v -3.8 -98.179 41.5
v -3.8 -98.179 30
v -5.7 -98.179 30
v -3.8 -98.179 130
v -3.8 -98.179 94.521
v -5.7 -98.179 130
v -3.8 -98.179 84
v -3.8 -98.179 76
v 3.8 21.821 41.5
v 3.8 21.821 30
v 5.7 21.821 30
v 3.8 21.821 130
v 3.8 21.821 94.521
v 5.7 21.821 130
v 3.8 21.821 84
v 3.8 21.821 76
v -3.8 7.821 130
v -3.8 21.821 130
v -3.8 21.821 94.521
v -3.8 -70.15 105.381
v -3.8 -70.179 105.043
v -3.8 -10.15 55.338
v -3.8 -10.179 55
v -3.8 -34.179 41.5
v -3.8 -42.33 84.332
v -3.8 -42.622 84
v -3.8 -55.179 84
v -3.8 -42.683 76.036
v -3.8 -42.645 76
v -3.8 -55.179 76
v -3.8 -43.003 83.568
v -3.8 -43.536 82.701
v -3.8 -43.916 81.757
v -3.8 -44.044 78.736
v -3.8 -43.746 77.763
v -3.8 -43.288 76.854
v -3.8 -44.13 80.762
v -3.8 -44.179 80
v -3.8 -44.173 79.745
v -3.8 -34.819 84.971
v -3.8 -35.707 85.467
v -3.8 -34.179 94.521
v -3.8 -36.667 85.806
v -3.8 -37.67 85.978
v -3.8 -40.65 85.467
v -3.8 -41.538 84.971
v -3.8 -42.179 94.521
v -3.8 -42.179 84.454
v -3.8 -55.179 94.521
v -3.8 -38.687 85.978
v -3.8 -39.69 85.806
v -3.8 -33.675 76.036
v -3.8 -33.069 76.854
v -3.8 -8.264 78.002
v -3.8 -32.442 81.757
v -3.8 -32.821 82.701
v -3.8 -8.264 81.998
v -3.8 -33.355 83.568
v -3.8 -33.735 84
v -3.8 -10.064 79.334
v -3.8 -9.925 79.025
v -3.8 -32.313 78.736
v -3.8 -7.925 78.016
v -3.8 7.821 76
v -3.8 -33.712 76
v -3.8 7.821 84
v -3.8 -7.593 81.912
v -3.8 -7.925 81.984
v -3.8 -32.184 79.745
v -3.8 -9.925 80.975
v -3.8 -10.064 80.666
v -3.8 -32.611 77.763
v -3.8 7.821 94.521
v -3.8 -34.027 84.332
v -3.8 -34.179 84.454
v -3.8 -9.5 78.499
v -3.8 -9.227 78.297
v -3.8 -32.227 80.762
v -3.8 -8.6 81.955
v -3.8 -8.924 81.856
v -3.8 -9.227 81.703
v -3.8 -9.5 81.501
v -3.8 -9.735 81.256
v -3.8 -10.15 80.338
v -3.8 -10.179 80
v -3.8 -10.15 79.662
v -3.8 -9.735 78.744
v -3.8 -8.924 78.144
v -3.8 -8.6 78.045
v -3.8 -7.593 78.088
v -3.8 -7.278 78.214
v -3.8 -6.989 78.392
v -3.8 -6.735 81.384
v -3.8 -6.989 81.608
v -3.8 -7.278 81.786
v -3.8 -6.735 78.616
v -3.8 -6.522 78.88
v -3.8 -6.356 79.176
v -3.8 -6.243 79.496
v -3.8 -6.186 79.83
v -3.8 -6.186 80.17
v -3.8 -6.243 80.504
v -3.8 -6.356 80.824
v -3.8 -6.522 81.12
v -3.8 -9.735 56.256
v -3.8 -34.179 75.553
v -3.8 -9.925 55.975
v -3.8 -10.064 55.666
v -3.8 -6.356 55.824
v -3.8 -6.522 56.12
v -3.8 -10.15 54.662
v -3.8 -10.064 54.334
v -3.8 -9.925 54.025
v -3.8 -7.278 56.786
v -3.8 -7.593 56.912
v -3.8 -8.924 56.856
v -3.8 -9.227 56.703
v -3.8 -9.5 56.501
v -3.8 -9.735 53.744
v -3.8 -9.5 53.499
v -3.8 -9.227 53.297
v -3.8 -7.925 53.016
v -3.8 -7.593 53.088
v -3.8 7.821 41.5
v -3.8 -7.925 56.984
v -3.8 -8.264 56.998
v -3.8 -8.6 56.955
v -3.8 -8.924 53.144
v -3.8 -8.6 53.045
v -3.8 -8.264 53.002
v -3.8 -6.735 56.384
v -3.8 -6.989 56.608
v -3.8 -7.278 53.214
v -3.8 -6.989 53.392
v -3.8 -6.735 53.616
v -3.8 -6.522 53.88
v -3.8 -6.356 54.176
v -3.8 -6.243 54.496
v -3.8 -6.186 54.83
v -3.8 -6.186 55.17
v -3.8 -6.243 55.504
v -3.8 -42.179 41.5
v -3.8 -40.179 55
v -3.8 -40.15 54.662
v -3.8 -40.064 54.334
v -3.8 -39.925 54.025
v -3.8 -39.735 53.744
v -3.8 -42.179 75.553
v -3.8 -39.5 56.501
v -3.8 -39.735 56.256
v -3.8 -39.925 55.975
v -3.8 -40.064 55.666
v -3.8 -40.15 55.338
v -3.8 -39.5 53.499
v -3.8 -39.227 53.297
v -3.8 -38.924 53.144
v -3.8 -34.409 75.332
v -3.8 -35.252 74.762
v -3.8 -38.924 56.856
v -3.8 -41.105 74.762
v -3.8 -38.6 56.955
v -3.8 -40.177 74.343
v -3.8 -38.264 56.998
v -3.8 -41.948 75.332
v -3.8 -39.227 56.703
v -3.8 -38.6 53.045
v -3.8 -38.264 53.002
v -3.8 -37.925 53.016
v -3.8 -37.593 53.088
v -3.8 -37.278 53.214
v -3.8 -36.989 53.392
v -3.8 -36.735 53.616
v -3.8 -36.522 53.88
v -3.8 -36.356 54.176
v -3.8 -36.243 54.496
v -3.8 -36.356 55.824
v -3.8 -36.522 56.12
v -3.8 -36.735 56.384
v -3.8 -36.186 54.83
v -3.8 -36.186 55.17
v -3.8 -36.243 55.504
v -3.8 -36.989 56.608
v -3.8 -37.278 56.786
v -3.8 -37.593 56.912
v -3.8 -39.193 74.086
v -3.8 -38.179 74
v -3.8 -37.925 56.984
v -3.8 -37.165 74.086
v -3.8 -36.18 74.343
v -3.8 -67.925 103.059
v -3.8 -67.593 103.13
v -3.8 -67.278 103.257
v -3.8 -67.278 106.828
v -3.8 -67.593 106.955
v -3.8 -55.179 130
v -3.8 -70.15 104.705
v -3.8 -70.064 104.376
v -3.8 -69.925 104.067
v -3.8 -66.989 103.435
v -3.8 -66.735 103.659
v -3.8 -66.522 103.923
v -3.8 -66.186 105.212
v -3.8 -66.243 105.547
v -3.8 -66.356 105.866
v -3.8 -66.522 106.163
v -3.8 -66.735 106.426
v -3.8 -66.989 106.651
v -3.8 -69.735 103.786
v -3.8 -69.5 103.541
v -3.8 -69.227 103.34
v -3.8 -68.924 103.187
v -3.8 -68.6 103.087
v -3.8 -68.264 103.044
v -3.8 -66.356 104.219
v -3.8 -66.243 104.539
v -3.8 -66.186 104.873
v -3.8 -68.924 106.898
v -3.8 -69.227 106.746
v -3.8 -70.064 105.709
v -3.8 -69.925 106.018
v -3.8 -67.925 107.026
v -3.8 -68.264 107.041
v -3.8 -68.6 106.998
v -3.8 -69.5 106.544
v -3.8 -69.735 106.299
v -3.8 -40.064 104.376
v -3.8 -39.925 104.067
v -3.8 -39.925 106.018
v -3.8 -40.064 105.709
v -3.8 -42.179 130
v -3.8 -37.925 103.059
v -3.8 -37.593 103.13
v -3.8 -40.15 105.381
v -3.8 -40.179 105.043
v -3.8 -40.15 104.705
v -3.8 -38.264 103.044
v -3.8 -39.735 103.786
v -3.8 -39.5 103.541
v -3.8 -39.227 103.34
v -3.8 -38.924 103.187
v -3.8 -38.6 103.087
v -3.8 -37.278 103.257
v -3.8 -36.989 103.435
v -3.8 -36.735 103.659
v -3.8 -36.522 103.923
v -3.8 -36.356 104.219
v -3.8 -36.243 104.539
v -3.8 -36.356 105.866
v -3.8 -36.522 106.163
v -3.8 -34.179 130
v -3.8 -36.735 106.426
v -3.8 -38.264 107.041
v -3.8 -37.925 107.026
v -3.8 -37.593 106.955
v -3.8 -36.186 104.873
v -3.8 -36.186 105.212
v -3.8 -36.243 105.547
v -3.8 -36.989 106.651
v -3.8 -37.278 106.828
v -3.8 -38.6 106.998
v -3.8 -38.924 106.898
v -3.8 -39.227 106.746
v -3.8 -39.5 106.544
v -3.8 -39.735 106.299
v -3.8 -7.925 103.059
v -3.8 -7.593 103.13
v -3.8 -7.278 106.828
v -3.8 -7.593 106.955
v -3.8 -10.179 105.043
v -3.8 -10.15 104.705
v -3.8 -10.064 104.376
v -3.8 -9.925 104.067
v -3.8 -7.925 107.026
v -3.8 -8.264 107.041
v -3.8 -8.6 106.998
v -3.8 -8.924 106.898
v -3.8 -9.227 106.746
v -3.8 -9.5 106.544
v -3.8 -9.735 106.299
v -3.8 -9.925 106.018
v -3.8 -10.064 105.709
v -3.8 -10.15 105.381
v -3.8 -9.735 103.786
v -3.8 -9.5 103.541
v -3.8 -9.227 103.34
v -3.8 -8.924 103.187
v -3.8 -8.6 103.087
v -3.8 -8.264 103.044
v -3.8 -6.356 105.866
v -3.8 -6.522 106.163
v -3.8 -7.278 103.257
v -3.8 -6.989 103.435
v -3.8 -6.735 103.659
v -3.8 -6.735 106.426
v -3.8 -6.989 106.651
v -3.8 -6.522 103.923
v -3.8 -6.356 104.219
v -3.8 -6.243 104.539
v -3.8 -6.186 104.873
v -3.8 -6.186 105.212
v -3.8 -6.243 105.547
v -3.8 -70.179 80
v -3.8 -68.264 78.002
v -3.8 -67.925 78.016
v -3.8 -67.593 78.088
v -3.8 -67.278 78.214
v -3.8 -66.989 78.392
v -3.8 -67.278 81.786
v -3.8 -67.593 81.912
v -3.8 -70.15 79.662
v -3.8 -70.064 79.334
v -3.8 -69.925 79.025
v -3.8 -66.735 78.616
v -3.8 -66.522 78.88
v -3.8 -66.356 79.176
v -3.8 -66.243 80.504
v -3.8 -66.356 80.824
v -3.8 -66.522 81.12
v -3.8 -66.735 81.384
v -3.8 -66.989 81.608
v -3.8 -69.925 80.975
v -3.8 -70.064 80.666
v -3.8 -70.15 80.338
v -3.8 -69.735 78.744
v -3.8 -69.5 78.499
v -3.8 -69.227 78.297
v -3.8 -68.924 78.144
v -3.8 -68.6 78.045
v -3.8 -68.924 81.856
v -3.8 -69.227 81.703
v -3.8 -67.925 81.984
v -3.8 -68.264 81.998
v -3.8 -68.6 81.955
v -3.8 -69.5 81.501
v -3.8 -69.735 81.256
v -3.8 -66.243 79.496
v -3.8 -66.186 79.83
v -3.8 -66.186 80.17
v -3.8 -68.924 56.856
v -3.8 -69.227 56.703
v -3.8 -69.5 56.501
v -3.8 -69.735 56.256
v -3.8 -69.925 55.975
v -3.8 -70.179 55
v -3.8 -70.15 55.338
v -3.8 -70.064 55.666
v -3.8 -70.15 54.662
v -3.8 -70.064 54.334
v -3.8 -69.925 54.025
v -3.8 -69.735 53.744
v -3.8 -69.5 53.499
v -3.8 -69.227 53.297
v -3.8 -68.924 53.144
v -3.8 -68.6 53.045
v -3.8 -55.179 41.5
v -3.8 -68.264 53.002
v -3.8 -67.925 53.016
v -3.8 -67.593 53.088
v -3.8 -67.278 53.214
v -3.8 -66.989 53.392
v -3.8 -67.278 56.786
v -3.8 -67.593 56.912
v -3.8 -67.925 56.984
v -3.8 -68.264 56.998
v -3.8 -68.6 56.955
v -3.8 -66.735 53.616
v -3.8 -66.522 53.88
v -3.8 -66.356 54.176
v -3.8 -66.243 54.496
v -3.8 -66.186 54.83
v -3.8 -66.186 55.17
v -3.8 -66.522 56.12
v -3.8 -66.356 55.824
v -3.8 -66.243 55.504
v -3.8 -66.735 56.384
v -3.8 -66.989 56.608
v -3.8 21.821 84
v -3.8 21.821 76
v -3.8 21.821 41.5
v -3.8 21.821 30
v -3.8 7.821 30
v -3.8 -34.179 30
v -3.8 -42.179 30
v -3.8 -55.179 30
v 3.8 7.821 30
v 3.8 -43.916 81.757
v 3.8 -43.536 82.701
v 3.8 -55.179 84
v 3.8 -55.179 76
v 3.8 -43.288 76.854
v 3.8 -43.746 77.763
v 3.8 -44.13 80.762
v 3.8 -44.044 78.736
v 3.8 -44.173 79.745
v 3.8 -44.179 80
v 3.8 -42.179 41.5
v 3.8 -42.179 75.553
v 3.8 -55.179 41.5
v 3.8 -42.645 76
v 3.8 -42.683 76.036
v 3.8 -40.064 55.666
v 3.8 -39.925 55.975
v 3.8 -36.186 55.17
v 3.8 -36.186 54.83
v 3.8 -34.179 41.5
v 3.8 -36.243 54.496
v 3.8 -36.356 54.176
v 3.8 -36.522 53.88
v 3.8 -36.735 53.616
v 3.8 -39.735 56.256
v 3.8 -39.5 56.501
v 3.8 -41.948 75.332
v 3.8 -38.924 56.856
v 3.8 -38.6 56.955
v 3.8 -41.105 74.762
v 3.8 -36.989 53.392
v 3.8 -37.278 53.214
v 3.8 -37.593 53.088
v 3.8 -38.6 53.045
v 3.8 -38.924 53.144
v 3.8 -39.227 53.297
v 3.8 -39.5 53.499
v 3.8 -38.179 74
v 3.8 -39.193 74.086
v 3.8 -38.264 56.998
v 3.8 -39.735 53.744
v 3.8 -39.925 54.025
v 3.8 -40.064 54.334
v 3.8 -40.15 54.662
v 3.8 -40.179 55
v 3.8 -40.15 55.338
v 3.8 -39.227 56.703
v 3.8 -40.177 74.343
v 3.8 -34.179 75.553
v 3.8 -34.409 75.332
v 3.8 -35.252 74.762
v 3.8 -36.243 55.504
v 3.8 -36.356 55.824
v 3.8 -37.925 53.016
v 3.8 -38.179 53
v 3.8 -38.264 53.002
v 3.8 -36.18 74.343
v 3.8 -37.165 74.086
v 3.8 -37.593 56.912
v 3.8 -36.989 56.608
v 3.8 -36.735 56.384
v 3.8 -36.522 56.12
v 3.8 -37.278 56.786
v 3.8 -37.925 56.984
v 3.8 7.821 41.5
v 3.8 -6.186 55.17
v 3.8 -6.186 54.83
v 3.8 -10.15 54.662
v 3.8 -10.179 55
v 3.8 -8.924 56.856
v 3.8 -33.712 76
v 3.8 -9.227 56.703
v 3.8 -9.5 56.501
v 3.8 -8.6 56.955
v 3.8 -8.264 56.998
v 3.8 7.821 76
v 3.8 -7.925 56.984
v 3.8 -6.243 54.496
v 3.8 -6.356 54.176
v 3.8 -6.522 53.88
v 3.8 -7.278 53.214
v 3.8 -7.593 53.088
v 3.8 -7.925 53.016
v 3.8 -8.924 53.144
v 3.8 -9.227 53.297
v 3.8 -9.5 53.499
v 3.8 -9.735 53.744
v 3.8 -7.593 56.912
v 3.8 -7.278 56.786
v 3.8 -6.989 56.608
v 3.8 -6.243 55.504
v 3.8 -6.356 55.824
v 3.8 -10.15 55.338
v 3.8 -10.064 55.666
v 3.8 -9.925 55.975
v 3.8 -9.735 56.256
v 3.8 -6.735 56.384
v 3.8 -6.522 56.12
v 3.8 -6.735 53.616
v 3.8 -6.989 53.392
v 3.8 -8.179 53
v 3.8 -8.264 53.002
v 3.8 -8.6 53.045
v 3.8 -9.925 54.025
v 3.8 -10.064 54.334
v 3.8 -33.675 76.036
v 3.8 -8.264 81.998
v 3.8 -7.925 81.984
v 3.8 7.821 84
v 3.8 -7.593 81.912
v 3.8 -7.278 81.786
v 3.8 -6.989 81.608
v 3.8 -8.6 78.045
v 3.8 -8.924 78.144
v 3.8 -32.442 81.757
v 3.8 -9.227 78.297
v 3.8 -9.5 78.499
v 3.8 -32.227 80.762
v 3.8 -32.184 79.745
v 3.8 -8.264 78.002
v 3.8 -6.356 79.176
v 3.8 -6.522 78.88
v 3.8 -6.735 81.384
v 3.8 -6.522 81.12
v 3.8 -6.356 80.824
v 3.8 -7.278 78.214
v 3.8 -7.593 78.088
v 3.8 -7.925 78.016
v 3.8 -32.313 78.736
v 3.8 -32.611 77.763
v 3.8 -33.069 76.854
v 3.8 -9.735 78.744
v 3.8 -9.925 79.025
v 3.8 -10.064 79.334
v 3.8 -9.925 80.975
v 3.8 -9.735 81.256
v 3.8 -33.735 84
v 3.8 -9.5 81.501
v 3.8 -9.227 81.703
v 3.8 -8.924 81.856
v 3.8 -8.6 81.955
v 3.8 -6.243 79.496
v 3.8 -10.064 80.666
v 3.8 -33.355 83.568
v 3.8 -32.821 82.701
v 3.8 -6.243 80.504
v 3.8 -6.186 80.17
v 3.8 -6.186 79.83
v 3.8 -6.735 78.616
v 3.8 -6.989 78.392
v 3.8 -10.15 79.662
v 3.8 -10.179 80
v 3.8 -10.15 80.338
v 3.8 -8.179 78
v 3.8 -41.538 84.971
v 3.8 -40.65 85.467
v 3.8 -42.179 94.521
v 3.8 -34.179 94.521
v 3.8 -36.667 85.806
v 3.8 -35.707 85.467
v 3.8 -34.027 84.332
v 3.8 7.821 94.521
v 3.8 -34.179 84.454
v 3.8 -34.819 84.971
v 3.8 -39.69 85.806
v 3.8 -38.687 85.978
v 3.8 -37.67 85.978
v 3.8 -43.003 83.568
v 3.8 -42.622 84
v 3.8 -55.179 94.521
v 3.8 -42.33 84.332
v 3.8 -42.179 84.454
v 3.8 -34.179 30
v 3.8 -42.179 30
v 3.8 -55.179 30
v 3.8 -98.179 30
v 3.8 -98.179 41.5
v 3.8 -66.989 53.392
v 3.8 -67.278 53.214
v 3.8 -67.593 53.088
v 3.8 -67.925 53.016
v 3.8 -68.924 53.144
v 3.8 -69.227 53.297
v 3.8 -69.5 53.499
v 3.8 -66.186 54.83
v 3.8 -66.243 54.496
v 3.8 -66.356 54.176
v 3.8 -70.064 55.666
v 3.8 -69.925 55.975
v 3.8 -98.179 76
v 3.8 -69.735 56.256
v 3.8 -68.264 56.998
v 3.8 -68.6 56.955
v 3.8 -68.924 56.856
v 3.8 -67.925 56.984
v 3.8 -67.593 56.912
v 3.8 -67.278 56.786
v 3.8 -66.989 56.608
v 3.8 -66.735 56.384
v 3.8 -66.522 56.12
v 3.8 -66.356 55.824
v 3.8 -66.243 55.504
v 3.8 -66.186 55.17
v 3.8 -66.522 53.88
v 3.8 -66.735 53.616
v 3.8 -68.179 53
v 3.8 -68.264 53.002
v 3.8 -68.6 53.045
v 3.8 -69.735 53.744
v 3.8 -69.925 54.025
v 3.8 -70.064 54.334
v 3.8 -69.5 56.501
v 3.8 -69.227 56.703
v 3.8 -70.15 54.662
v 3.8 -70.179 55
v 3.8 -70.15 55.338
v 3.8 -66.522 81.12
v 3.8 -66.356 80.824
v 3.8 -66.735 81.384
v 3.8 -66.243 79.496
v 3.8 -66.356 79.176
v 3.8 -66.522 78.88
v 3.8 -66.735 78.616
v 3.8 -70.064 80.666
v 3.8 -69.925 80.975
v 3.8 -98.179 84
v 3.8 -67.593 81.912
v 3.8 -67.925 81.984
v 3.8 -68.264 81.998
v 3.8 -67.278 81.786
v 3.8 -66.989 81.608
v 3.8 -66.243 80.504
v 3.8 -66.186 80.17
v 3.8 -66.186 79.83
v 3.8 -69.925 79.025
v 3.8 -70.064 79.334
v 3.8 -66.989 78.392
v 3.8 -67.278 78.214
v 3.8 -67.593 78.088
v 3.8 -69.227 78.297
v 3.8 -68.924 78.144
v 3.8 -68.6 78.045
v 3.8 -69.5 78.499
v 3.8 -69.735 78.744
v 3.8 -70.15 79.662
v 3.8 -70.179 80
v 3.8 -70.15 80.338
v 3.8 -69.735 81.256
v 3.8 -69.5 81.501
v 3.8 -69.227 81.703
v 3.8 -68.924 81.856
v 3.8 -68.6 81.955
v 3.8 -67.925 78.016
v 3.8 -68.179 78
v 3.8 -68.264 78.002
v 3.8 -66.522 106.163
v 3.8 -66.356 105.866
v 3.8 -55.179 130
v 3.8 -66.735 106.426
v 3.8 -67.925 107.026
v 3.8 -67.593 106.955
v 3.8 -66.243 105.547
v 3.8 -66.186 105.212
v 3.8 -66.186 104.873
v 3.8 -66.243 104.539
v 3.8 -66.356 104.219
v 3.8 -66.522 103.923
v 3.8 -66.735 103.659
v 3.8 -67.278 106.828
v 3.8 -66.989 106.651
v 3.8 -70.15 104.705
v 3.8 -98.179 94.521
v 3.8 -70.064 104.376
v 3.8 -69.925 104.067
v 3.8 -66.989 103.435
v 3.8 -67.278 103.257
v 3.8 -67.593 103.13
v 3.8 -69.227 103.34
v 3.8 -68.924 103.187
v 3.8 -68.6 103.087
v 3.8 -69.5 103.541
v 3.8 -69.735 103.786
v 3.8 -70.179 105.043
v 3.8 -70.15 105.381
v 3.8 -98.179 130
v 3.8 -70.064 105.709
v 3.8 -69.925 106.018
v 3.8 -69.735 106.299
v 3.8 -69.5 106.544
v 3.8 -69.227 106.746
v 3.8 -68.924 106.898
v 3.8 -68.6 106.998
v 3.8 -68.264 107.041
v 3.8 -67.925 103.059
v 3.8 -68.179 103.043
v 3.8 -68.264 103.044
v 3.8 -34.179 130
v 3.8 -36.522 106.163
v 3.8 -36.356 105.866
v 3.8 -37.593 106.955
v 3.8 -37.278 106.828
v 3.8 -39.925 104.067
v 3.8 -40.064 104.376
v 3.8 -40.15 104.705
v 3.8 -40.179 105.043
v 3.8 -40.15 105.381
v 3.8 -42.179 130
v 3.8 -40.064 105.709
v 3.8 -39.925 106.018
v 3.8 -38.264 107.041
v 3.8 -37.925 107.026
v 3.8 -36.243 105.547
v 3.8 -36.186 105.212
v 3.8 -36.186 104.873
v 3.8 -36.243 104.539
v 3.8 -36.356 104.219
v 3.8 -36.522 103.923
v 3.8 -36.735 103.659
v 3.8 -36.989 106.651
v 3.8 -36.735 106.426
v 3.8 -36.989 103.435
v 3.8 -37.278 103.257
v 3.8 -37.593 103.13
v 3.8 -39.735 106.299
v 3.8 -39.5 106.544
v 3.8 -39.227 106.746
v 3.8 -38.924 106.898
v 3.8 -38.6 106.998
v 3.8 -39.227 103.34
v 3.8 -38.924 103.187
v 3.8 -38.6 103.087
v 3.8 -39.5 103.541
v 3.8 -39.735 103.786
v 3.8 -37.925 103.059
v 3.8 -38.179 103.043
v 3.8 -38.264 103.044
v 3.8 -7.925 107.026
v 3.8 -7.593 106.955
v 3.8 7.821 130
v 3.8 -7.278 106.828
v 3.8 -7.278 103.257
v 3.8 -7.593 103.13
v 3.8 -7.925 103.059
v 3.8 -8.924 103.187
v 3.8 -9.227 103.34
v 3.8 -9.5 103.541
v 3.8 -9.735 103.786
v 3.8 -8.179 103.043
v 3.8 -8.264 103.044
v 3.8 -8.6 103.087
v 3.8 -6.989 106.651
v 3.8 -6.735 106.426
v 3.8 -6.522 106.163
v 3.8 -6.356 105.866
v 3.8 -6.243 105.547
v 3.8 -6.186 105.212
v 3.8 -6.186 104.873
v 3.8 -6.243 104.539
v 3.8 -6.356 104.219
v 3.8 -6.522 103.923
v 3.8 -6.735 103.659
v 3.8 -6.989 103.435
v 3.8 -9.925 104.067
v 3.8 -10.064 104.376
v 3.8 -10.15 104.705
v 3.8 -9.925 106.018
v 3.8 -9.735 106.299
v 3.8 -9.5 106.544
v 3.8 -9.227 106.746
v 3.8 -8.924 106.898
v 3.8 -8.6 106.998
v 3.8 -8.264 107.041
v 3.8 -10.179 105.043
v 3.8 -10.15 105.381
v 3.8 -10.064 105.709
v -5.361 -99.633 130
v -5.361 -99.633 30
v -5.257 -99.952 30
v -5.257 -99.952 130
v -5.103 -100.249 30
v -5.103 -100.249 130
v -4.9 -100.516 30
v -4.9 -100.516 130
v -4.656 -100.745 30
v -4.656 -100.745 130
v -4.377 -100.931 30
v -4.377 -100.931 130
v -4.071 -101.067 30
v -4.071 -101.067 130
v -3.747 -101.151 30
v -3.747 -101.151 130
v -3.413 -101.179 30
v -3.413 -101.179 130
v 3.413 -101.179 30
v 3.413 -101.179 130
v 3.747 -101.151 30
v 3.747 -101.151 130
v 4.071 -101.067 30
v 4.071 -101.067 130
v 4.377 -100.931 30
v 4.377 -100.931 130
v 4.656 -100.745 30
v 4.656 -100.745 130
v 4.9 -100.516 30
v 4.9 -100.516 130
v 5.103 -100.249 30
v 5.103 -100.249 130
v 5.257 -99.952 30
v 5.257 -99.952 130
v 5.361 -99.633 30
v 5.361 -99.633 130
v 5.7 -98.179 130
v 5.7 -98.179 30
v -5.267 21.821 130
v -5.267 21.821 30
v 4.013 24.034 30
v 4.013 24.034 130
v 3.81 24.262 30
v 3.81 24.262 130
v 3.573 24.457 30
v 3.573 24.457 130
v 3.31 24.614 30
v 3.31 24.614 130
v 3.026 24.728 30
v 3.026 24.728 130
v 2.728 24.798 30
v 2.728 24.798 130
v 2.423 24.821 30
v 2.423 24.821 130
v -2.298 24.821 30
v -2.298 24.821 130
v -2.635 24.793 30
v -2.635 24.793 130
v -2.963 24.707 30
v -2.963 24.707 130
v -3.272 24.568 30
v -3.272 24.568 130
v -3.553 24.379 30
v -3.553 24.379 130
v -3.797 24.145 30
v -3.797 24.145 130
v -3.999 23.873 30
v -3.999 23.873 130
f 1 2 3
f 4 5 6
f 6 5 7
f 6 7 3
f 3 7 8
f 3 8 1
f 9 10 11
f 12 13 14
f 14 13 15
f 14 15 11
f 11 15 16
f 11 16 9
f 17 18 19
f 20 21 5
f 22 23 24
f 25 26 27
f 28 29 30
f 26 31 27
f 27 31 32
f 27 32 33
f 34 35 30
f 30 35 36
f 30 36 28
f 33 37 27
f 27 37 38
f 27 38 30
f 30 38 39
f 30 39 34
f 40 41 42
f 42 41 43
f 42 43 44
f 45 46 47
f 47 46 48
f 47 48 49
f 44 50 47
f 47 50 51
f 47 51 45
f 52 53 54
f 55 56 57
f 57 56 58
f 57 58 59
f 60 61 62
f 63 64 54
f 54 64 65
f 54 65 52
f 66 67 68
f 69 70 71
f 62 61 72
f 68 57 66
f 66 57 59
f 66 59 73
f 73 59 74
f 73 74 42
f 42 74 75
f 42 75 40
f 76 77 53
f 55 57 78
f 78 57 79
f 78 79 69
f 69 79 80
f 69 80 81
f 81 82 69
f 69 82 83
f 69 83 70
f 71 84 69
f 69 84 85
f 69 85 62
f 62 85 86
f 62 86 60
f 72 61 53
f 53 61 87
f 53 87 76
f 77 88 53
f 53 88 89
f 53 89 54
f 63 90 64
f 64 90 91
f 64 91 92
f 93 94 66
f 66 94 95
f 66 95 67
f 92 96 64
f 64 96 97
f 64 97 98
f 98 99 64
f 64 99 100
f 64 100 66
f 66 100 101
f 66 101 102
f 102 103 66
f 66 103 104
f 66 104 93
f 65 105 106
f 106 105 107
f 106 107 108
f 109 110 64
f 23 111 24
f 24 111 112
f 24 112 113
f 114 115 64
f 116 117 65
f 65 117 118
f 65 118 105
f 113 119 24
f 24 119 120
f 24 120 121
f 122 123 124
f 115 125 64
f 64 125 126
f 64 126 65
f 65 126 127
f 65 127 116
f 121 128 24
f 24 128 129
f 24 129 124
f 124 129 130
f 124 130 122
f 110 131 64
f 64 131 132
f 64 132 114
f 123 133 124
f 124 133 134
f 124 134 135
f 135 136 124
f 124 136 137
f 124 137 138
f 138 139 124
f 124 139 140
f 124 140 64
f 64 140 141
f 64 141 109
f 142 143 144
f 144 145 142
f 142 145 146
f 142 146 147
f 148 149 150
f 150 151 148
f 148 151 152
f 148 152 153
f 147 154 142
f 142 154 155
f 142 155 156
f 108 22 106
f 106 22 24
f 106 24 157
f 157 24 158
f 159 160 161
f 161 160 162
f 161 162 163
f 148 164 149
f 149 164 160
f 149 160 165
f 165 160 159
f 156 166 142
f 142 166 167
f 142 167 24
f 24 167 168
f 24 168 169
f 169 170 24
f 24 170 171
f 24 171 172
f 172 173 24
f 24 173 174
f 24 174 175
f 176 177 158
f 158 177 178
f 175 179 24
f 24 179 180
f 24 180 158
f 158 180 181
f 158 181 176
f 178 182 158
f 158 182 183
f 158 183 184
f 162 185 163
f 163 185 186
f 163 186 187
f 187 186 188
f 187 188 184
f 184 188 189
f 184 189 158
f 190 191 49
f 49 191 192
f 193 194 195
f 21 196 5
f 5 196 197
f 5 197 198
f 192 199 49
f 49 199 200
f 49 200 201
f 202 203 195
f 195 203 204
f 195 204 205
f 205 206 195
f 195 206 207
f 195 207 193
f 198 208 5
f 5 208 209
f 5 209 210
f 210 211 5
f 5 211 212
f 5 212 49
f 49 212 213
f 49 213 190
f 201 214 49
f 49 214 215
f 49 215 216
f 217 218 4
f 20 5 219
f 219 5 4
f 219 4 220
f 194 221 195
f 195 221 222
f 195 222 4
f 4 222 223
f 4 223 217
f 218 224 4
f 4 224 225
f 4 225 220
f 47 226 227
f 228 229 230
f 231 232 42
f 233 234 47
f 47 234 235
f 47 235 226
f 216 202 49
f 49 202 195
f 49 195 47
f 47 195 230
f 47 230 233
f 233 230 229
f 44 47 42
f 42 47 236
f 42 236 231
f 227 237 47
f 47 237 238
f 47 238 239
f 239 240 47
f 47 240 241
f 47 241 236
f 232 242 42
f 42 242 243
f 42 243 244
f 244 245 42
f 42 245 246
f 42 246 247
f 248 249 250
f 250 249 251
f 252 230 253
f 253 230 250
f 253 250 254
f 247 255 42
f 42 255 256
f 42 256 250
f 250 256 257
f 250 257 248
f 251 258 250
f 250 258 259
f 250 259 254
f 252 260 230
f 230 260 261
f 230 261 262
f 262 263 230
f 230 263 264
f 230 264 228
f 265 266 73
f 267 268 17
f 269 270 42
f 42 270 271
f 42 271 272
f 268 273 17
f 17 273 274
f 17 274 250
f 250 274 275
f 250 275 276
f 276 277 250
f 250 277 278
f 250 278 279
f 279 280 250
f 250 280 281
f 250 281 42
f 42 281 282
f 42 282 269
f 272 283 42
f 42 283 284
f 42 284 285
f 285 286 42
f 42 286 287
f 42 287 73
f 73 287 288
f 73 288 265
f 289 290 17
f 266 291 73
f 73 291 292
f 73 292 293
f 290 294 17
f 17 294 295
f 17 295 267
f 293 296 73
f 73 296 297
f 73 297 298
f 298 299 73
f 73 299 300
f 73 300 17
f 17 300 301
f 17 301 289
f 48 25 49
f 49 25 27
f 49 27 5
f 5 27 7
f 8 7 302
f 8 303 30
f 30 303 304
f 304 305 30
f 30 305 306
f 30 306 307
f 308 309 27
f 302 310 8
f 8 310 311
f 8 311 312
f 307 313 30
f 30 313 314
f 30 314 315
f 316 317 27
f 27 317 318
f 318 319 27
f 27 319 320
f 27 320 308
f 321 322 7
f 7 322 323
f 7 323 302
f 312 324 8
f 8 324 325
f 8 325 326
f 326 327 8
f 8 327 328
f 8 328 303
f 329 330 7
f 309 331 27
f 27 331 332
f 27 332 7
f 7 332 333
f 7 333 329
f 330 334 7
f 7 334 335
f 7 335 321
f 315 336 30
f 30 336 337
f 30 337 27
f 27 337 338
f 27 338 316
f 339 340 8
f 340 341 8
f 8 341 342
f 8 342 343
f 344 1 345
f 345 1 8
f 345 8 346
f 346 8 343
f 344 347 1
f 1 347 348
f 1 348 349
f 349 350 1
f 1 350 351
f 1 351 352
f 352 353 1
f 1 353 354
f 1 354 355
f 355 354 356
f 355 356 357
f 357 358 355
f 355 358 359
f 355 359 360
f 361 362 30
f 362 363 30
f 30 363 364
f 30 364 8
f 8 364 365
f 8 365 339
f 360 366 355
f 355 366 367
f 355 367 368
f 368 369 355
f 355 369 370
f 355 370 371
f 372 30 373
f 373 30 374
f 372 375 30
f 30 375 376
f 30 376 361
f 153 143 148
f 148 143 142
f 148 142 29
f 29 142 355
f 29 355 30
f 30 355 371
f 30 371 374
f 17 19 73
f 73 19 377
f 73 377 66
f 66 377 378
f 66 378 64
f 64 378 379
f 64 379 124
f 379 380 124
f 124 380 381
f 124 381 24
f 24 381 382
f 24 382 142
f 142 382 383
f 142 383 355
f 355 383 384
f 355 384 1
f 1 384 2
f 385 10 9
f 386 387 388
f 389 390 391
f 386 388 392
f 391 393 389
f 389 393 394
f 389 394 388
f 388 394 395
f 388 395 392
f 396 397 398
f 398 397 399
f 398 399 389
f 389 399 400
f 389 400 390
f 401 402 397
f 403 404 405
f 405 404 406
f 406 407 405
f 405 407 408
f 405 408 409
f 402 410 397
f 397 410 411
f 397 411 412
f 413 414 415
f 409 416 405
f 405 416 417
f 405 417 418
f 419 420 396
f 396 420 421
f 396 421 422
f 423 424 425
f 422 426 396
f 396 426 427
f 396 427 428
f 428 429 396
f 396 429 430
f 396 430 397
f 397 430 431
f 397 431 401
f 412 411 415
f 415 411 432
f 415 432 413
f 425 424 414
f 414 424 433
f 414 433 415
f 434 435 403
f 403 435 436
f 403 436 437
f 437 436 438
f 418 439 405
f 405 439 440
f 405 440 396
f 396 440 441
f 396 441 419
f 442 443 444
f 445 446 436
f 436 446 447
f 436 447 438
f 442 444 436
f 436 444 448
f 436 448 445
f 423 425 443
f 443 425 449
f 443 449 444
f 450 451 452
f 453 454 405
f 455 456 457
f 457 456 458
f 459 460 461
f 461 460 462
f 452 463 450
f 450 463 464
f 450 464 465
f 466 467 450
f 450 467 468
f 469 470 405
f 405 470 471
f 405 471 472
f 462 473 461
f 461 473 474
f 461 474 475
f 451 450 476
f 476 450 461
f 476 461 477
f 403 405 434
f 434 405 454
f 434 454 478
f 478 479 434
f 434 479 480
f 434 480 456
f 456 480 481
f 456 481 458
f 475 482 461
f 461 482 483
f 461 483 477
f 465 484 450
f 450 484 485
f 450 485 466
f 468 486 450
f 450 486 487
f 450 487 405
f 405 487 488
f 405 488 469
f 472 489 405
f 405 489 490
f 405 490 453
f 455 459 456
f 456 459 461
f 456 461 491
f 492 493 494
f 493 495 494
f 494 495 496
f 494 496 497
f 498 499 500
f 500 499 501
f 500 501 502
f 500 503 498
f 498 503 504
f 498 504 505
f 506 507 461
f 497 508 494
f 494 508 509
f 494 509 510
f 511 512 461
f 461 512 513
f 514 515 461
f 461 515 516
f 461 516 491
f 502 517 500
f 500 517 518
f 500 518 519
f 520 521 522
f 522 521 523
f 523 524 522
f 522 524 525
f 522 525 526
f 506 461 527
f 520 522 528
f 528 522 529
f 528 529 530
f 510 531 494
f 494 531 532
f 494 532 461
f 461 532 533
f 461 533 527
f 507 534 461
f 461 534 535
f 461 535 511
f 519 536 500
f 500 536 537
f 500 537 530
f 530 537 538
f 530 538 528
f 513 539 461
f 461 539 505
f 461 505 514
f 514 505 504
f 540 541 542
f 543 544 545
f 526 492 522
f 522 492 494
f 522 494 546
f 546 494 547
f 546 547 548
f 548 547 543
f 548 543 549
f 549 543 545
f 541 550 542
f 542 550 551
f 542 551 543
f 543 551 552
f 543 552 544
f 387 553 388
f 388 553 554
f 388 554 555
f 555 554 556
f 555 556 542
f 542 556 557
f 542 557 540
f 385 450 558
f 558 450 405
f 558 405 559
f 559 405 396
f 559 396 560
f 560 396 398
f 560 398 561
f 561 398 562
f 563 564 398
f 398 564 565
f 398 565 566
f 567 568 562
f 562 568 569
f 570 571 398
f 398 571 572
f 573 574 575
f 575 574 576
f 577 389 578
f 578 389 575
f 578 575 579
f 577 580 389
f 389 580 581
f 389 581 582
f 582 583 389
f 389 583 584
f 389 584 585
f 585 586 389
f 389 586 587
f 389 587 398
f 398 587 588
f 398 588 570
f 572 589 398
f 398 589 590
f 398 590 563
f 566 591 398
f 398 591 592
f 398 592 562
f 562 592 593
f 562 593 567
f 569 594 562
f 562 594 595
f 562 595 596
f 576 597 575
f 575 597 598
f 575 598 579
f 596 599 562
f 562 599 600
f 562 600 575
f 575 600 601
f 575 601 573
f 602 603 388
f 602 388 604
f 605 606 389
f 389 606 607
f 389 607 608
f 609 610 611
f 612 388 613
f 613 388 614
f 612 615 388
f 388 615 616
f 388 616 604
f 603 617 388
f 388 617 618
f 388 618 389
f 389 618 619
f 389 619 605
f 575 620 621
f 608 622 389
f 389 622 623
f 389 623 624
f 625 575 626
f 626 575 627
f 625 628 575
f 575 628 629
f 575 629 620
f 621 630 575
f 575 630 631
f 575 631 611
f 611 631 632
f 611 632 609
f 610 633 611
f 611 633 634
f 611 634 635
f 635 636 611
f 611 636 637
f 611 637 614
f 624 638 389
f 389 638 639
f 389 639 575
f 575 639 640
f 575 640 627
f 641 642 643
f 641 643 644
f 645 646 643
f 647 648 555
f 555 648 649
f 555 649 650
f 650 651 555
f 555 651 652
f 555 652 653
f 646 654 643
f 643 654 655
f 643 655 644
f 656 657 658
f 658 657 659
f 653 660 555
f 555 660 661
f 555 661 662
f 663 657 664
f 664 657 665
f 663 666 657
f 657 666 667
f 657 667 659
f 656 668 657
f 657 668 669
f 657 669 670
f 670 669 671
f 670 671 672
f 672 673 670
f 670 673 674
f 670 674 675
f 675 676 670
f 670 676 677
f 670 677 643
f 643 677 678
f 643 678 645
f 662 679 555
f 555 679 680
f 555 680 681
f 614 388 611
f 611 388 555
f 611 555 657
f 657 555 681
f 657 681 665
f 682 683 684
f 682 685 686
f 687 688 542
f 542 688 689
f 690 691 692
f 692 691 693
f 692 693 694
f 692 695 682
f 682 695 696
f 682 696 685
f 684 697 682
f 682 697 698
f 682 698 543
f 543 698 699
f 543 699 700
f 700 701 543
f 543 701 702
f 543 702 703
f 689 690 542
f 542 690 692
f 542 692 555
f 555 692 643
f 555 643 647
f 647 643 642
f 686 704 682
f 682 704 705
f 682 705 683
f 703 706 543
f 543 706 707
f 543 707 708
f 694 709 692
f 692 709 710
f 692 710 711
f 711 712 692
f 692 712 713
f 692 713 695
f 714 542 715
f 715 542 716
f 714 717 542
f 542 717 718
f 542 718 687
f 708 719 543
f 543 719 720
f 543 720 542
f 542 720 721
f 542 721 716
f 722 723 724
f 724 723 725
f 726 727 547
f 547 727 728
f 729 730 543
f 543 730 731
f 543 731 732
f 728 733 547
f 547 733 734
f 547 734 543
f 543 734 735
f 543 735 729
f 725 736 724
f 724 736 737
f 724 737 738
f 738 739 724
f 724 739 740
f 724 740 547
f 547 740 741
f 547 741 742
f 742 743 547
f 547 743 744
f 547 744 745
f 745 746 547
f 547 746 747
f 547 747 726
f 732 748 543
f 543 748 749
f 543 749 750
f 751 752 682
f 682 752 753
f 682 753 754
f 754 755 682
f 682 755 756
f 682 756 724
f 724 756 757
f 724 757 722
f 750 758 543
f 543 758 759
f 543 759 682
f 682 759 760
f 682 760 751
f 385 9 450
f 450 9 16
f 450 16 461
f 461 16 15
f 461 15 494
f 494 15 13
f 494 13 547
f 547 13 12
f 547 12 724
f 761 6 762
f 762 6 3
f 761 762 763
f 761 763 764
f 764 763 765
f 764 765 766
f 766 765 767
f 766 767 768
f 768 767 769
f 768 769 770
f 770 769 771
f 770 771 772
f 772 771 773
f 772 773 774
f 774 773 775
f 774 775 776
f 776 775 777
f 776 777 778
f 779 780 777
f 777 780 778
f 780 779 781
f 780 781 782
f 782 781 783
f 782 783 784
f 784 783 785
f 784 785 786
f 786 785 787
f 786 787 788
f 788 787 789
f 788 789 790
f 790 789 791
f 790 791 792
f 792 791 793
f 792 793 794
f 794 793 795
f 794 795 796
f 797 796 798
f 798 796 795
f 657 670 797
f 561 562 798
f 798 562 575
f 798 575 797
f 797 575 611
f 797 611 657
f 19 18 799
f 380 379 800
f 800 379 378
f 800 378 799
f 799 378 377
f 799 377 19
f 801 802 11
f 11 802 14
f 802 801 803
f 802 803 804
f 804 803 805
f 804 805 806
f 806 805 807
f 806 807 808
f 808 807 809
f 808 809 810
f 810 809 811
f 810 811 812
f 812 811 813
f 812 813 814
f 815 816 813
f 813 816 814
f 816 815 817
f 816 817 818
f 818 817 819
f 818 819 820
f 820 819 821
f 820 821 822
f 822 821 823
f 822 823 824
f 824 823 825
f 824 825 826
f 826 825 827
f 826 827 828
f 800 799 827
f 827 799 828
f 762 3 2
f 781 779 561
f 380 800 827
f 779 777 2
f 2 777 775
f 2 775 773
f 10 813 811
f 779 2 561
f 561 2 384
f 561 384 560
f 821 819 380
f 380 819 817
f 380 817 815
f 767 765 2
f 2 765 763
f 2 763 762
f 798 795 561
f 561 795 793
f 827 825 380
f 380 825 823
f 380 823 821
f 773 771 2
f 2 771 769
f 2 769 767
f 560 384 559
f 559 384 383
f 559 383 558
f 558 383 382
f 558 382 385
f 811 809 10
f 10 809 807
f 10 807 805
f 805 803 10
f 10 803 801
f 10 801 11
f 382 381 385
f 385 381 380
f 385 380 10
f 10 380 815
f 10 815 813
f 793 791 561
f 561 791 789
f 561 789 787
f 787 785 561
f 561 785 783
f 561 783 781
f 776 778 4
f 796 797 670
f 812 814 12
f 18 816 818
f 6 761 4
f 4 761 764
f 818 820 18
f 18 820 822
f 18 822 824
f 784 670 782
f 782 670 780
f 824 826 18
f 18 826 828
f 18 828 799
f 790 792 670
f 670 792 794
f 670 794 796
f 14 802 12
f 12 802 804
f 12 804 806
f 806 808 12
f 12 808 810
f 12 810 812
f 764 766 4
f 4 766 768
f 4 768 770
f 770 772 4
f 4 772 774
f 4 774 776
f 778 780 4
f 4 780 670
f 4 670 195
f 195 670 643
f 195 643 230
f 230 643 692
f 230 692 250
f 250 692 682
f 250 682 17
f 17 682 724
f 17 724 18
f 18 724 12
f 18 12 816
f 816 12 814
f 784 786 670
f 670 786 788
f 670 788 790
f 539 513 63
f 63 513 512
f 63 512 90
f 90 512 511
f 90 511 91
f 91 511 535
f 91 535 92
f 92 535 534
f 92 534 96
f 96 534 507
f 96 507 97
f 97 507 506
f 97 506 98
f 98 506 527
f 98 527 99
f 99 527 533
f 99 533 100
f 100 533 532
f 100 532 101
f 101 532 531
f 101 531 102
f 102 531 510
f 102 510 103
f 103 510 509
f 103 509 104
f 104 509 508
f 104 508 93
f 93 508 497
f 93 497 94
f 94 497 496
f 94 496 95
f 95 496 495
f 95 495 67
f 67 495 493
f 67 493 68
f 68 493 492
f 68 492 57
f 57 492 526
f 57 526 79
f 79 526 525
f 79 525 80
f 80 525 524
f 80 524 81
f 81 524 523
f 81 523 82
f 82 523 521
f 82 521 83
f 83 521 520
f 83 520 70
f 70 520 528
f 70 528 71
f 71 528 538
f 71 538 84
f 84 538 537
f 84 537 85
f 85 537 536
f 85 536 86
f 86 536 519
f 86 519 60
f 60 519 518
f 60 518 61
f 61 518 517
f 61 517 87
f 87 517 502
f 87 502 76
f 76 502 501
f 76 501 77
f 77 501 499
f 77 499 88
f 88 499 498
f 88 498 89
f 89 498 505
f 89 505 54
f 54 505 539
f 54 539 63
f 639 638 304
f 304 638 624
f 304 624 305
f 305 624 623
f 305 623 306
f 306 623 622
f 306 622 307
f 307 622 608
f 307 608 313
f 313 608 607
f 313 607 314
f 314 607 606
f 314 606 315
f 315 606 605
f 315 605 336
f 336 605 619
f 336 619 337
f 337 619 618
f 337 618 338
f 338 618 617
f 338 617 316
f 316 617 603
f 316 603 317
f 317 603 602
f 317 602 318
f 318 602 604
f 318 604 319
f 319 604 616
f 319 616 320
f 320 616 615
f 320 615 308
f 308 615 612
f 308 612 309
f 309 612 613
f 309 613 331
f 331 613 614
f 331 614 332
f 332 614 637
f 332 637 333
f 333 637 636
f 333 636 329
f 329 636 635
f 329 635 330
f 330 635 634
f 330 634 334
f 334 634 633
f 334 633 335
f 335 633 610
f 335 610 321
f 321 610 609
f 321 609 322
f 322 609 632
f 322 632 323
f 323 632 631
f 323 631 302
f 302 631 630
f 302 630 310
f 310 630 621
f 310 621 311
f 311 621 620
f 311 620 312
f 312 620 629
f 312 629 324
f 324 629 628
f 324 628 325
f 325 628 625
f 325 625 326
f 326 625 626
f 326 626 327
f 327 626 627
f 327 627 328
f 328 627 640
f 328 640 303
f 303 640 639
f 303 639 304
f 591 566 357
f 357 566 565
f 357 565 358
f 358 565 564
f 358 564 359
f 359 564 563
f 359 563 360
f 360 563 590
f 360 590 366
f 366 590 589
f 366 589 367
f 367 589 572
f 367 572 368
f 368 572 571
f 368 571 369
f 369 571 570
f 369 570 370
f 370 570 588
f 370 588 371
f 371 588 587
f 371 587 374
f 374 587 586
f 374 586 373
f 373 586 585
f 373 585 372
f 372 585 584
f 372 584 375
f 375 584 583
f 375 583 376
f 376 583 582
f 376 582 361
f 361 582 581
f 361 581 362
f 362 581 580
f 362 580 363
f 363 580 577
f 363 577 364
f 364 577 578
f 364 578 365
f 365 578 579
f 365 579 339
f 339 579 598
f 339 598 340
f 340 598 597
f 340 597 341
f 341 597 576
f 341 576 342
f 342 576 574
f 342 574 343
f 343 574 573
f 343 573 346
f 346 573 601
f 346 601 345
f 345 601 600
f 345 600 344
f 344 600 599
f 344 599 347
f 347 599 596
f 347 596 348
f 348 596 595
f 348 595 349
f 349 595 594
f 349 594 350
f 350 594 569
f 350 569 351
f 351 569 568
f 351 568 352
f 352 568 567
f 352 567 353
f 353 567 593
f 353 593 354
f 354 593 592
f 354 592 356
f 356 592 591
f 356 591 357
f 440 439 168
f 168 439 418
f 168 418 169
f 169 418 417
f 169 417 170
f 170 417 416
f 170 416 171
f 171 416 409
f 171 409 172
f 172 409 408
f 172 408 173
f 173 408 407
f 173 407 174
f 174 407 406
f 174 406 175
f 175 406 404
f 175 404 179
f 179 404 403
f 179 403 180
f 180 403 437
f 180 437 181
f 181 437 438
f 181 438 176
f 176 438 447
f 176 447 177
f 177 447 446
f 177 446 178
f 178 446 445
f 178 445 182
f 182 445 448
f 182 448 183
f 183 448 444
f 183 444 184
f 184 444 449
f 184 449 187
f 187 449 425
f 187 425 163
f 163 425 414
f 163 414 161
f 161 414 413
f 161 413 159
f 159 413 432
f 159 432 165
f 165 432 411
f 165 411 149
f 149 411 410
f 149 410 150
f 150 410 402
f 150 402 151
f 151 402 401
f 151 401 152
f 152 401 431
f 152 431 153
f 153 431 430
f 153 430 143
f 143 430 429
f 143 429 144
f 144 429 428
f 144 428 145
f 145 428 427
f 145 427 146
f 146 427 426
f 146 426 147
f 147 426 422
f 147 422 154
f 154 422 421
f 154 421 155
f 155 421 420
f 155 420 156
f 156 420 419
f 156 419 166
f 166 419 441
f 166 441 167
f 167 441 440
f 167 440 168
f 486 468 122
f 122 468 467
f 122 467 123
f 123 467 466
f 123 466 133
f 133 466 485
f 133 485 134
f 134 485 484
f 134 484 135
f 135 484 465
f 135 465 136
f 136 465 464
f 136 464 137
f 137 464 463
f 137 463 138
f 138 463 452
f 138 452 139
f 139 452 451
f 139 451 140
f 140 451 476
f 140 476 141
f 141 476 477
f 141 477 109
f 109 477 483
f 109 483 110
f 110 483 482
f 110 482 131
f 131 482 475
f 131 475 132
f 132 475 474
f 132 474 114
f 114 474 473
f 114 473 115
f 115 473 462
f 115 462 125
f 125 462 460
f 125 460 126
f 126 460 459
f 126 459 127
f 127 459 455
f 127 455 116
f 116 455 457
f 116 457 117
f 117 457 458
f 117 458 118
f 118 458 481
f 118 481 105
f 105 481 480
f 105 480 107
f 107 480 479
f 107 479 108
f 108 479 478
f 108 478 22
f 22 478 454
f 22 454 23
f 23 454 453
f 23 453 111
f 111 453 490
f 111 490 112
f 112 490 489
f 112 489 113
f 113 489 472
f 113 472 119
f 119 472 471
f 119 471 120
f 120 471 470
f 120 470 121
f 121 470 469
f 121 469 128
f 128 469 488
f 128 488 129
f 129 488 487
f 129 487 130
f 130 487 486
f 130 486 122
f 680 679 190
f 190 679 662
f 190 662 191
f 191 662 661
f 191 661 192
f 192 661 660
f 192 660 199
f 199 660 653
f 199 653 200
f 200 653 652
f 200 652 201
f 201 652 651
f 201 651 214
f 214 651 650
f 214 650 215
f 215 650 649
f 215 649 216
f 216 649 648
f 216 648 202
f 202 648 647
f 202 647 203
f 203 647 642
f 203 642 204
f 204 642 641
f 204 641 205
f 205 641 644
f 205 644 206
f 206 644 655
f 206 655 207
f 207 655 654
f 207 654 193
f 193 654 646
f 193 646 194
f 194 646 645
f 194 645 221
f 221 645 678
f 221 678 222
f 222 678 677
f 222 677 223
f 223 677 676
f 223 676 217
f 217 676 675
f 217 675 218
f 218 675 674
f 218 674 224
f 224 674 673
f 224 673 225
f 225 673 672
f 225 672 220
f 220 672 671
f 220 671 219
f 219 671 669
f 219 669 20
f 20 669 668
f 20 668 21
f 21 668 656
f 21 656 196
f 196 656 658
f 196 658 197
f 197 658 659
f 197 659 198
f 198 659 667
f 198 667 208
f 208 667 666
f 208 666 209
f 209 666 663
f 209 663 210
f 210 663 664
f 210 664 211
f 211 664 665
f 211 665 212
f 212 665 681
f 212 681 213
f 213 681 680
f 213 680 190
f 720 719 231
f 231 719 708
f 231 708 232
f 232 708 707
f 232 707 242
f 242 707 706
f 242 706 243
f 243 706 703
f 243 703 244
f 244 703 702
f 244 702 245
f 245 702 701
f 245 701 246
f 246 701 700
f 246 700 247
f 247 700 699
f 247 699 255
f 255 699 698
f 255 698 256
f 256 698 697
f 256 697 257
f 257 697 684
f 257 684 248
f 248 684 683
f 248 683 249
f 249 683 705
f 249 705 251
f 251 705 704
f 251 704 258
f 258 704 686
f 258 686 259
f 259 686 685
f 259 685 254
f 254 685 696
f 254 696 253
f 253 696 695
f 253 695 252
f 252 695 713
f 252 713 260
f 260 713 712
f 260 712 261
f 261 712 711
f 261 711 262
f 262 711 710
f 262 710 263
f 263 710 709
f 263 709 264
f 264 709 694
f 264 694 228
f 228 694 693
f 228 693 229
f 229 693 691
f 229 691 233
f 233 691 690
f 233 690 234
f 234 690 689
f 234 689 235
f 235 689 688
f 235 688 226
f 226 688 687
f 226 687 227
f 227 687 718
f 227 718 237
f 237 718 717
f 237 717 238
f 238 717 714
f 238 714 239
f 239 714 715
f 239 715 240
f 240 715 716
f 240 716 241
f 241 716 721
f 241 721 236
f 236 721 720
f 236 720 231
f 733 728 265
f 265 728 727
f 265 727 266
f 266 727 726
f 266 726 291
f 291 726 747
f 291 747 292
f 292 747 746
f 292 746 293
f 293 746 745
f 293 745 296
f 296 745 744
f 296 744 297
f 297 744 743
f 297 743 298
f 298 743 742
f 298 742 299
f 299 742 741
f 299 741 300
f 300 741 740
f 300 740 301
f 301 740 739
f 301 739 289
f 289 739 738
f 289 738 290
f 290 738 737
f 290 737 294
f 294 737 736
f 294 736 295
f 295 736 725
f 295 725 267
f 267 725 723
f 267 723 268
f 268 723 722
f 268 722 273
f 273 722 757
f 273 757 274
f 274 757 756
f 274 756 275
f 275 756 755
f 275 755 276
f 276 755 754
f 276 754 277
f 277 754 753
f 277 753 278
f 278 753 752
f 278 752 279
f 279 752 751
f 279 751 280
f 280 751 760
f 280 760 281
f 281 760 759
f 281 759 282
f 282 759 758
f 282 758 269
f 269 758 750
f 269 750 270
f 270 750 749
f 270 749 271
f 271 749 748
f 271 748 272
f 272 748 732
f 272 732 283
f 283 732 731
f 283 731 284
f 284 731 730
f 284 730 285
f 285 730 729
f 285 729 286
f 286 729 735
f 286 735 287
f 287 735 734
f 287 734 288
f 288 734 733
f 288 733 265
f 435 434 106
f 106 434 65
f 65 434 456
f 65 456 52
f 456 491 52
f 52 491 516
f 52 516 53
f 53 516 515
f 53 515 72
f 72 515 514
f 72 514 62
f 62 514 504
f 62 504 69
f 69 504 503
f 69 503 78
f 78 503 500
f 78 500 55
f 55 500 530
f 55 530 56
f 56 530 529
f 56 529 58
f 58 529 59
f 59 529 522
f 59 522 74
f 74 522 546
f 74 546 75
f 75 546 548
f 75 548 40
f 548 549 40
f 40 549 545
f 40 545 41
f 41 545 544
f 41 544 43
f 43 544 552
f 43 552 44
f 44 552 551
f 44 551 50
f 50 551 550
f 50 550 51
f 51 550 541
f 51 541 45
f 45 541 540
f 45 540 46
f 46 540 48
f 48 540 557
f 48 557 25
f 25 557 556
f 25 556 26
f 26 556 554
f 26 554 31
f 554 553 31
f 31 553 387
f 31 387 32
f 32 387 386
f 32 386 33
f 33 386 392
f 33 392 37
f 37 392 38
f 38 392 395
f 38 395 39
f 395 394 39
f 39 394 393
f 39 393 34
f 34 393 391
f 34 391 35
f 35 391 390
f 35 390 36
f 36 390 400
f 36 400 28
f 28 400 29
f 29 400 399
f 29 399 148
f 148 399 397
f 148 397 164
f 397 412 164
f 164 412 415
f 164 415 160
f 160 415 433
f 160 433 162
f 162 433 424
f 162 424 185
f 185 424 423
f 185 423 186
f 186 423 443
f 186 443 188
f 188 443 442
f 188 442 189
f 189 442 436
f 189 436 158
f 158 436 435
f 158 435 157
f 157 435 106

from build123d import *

# Parameters (mm, degrees)
RESSALTO_EXTRUS_O1_DEPTH   = 160
ESBO_O2_W                  = 7.6
ESBO_O2_H                  = 120
CORTE_EXTRUS_O1_DEPTH      = 30
CORTE_EXTRUS_O2_DEPTH      = 30
F_3DSKETCH3_R              = 2
CORTE_EXTRUS_O3_DEPTH      = 70
ESBO_O3_R                  = 6
ESBO_O3_W                  = 45.015344868
ESBO_O3_H                  = 129.478543367
ESBO_O3_W_2                = 37.192593828
CORTE_EXTRUS_O4_DEPTH      = 41
CORTE_EXTRUS_O4_DEPTH_BACK = 22


with BuildPart() as part:
    # Esboço1 → Ressalto-extrusão1 (new body)
    with BuildSketch(Plane.XY):
        with BuildLine():
            Line((-3.8, 21.821375341), (-3.8, -98.178624659))
            Line((-3.8, -98.178624659), (-5.7, -98.178624659))
            Line((-5.7, -98.178624659), (-5.360626179, -99.63308389))
            ThreePointArc((-5.360626179, -99.63308389), (-4.656141559, -100.745296045), (-3.41294376, -101.178624659))
            Line((-3.41294376, -101.178624659), (3.41294376, -101.178624659))
            ThreePointArc((3.41294376, -101.178624659), (4.656141559, -100.745296045), (5.360626179, -99.63308389))
            Line((5.360626179, -99.63308389), (5.7, -98.178624659))
            Line((5.7, -98.178624659), (3.8, -98.178624659))
            Line((3.8, -98.178624659), (3.8, 21.821375341))
            Line((3.8, 21.821375341), (5.7, 21.821375341))
            Line((5.7, 21.821375341), (4.013268169, 24.033911877))
            ThreePointArc((4.013268169, 24.033911877), (3.310139149, 24.613730366), (2.422747768, 24.821375341))
            Line((2.422747768, 24.821375341), (-2.297792791, 24.821375341))
            ThreePointArc((-2.297792791, 24.821375341), (-3.27177376, 24.568189891), (-3.999156919, 23.872736414))
            Line((-3.999156919, 23.872736414), (-5.266799243, 21.821375341))
            Line((-5.266799243, 21.821375341), (-3.8, 21.821375341))
        make_face()
    extrude(amount=RESSALTO_EXTRUS_O1_DEPTH)

    # Esboço2 → Corte-extrusão1 (cut)
    with BuildSketch(Plane.XY):
        with Locations((0, -38.178624659)):
            Rectangle(ESBO_O2_W, ESBO_O2_H)
    extrude(amount=CORTE_EXTRUS_O1_DEPTH, mode=Mode.SUBTRACT)

    # 3DSketch2 → Corte-extrusão2 (cut)
    with BuildSketch(Plane(origin=(-3.8, 21.821375341, 160), x_dir=(0.0632066956560733, -0.9980004577274705, 0), z_dir=(0, 0, -1))):
        Polygon((0, 0), (0.480370887, -7.584803479), (120.240425814, 0), (119.760054927, 7.584803479), align=None)
    extrude(amount=CORTE_EXTRUS_O2_DEPTH, mode=Mode.SUBTRACT)

    # 3DSketch3 → Corte-extrusão3 (cut)
    with BuildSketch(Plane(origin=(3.8, -38.178624659, 80), x_dir=(0, 0.7676852805184269, 0.6408270516101394), z_dir=(1, 0, 0))):
        with Locations(Location((0, 0, 0), (0, 0, 140.146481665))):
            Circle(F_3DSKETCH3_R)
        with Locations(Location((23.030558416, -19.224811548, 0), (0, 0, 140.146481665))):
            Circle(F_3DSKETCH3_R)
        with Locations(Location((-23.030558416, 19.224811548, 0), (0, 0, 140.146481665))):
            Circle(F_3DSKETCH3_R)
        with Locations(Location((-39.051234706, 0.032679535, 0), (0, 0, 140.146481665))):
            Circle(F_3DSKETCH3_R)
        with Locations(Location((-16.02067629, -19.192132013, 0), (0, 0, 140.146481665))):
            Circle(F_3DSKETCH3_R)
        with Locations(Location((7.009882125, -38.416943561, 0), (0, 0, 140.146481665))):
            Circle(F_3DSKETCH3_R)
        with Locations(Location((-6.982602808, 38.449623097, 0), (0, 0, 140.146481665))):
            Circle(F_3DSKETCH3_R)
        with Locations(Location((16.047955607, 19.224811548, 0), (0, 0, 140.146481665))):
            Circle(F_3DSKETCH3_R)
        with Locations(Location((39.078514023, 0, 0), (0, 0, 140.146481665))):
            Circle(F_3DSKETCH3_R)
    extrude(amount=-CORTE_EXTRUS_O3_DEPTH, mode=Mode.SUBTRACT)

    # Esboço3 → Corte-extrusão4 (cut, two sides)
    with BuildSketch(Plane(origin=(0, 0, 0), x_dir=(0, 0, -1), z_dir=(1, 0, 0))) as corte_extrus_o4_sk:
        with Locations(Location((-80, -38.178624659, 0), (0, 0, 270))):
            Circle(ESBO_O3_R)
        with Locations((-7.492327566, -39.917896343)):
            Rectangle(ESBO_O3_W, ESBO_O3_H)
        with Locations((-148.596296914, -39.917896343)):
            Rectangle(ESBO_O3_W_2, ESBO_O3_H)
    extrude(amount=CORTE_EXTRUS_O4_DEPTH, mode=Mode.SUBTRACT)
    extrude(corte_extrus_o4_sk.sketch, amount=-CORTE_EXTRUS_O4_DEPTH_BACK, mode=Mode.SUBTRACT)


solid = part.part
